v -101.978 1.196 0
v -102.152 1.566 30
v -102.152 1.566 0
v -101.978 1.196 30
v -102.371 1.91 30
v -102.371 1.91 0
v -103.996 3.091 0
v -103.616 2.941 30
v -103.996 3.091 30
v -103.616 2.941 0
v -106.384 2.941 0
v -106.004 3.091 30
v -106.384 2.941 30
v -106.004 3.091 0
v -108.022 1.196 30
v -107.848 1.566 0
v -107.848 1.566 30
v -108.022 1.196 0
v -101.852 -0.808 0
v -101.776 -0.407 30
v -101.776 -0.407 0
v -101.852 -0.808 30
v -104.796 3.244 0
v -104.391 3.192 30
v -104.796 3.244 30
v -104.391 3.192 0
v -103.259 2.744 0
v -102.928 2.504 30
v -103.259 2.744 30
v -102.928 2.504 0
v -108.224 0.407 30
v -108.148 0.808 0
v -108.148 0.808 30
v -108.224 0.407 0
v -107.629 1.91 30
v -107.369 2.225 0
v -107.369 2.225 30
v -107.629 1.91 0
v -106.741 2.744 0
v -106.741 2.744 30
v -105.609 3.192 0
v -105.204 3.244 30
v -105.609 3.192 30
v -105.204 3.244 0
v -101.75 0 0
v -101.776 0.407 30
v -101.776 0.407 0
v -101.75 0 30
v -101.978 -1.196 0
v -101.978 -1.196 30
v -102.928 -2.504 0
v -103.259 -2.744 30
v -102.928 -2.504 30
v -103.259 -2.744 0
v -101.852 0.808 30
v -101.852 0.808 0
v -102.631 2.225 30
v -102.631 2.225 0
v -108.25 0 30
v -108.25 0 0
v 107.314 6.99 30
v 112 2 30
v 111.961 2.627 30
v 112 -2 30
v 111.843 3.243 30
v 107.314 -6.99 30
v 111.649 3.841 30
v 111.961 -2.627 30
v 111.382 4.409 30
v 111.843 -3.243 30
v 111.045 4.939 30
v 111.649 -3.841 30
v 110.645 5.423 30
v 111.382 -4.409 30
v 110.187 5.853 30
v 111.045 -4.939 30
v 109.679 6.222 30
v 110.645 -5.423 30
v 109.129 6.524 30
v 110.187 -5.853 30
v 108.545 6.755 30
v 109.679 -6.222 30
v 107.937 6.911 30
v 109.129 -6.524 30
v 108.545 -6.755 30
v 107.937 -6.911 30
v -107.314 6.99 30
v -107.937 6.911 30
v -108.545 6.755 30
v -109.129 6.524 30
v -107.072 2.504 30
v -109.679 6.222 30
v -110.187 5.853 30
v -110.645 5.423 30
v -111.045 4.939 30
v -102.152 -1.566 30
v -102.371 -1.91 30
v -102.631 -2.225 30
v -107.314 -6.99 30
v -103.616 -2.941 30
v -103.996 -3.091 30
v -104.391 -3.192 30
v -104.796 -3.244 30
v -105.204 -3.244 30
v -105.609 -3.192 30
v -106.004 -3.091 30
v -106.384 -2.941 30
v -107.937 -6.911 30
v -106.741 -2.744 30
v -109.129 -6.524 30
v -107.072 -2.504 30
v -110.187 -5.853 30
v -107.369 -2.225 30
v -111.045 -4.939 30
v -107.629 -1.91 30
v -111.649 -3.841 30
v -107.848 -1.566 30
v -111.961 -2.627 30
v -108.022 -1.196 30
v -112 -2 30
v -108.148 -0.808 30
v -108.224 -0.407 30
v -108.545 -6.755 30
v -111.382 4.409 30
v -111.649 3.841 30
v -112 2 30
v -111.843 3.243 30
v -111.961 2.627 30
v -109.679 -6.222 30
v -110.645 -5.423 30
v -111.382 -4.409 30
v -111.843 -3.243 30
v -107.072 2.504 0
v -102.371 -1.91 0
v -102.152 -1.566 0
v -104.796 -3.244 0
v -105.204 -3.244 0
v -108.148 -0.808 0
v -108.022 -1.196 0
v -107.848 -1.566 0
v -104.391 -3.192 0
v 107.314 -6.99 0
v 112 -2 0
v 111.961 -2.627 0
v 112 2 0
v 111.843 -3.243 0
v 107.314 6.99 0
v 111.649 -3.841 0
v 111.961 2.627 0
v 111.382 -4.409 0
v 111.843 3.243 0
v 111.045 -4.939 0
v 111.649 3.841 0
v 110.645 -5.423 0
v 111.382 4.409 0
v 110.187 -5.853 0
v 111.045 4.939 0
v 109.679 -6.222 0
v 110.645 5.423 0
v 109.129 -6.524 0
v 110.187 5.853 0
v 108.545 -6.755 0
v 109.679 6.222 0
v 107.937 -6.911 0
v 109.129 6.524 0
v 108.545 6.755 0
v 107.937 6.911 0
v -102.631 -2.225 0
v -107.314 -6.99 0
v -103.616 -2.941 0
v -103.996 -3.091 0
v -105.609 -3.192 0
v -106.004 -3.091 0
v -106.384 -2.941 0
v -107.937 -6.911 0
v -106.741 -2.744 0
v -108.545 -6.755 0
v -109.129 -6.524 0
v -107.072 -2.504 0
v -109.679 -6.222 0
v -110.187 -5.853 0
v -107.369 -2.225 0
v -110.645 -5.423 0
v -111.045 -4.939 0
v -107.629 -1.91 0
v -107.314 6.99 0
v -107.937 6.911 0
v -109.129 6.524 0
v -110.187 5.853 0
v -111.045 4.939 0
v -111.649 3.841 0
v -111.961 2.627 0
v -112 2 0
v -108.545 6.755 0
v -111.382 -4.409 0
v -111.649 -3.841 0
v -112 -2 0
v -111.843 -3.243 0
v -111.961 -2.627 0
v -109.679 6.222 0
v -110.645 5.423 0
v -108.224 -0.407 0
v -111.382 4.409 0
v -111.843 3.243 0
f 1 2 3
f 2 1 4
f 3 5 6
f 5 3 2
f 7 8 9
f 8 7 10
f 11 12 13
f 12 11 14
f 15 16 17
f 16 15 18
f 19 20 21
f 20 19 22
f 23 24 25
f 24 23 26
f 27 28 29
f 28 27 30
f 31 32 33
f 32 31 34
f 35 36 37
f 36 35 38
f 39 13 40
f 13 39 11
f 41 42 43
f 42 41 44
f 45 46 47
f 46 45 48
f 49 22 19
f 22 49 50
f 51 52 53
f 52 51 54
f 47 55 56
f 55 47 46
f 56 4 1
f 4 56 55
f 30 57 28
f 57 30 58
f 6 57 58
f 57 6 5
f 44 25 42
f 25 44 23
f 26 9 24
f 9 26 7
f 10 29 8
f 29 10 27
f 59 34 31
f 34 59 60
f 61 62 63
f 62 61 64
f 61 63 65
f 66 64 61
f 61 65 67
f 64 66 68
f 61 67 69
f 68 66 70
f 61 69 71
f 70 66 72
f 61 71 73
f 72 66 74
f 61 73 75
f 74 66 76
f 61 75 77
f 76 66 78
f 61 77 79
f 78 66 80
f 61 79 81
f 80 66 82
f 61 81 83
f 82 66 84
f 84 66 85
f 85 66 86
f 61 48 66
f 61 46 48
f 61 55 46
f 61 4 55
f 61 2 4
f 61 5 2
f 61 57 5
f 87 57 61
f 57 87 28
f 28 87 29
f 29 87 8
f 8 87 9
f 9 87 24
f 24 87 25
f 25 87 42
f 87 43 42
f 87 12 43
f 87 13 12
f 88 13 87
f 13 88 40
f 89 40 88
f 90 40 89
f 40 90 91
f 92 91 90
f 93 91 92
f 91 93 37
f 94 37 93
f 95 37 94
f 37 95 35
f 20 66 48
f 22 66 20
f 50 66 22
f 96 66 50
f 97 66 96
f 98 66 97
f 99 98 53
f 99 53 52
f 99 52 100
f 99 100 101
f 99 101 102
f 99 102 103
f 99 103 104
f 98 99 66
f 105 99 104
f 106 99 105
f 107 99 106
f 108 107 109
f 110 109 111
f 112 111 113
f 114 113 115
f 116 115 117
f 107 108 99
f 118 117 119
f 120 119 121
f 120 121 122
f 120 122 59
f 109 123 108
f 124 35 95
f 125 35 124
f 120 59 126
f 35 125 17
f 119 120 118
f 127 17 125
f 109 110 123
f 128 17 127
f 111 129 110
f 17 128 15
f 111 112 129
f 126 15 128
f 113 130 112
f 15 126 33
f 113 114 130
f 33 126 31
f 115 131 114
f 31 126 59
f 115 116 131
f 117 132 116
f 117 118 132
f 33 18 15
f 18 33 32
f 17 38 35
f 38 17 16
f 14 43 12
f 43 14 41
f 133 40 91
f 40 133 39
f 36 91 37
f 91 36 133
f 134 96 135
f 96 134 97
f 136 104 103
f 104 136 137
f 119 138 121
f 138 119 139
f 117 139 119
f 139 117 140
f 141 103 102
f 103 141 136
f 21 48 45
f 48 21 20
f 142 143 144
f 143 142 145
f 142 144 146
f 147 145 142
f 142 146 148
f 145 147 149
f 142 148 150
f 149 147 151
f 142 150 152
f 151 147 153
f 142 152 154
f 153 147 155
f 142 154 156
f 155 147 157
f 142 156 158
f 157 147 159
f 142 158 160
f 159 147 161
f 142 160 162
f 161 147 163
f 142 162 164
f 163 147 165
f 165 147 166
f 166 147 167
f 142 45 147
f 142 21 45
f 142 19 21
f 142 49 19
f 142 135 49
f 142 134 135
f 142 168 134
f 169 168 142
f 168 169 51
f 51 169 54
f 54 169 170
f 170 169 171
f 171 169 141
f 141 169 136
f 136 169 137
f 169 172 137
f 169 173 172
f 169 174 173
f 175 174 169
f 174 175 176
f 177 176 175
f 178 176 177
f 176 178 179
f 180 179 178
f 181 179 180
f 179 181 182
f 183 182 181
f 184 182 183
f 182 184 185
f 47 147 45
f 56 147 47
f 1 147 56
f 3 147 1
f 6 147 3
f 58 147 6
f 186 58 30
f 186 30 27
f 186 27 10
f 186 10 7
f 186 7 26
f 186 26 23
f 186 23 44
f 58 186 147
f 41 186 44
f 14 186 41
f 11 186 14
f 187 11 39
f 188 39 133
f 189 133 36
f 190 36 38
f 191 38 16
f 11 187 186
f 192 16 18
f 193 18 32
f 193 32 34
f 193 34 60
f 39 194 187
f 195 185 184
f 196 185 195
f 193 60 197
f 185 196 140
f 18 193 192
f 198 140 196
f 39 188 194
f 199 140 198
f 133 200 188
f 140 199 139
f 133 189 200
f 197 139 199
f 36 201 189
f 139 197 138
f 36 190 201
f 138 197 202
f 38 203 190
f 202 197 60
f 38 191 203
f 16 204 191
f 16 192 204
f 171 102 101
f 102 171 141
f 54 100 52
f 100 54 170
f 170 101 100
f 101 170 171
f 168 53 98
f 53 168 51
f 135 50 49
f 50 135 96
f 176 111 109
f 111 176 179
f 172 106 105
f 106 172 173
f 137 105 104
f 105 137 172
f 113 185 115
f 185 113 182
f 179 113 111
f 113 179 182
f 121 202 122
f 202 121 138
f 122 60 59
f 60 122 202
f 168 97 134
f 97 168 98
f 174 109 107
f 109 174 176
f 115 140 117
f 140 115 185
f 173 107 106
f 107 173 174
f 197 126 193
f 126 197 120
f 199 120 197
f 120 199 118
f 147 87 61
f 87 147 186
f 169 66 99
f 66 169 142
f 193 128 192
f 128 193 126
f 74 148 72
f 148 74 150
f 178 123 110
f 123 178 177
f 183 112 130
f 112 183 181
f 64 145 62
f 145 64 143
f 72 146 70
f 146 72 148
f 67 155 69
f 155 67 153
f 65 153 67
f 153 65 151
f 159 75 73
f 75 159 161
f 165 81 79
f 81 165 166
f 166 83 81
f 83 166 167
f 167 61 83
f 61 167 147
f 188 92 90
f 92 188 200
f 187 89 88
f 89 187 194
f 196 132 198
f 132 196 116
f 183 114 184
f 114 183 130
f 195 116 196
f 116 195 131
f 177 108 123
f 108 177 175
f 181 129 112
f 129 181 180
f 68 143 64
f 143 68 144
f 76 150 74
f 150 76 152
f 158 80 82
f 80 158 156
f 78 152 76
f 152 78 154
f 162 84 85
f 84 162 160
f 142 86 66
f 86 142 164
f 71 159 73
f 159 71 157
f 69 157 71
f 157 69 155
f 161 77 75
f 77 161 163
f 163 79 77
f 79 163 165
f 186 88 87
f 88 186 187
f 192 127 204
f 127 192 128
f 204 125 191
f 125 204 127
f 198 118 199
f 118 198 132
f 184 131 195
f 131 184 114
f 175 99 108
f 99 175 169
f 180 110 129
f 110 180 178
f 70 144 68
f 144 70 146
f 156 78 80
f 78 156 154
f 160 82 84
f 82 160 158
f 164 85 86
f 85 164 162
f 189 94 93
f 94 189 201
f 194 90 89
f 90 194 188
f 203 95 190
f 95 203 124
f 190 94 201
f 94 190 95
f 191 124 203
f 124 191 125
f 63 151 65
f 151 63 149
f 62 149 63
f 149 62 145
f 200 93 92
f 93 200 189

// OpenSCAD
$fn = 50;


difference() {
	union() {
		hull() {
			translate(v = [-107.0000000000, 2.0000000000, 0]) {
				cylinder(h = 30, r = 5);
			}
			translate(v = [107.0000000000, 2.0000000000, 0]) {
				cylinder(h = 30, r = 5);
			}
			translate(v = [-107.0000000000, -2.0000000000, 0]) {
				cylinder(h = 30, r = 5);
			}
			translate(v = [107.0000000000, -2.0000000000, 0]) {
				cylinder(h = 30, r = 5);
			}
		}
	}
	union() {
		translate(v = [-105.0000000000, 0.0000000000, 0]) {
			cylinder(h = 30, r = 3.2500000000);
		}
		translate(v = [-105.0000000000, 0.0000000000, 0]) {
			cylinder(h = 30, r = 1.8000000000);
		}
		translate(v = [-105.0000000000, 0.0000000000, 0]) {
			cylinder(h = 30, r = 1.8000000000);
		}
		translate(v = [-105.0000000000, 0.0000000000, 0]) {
			cylinder(h = 30, r = 1.8000000000);
		}
	}
}
